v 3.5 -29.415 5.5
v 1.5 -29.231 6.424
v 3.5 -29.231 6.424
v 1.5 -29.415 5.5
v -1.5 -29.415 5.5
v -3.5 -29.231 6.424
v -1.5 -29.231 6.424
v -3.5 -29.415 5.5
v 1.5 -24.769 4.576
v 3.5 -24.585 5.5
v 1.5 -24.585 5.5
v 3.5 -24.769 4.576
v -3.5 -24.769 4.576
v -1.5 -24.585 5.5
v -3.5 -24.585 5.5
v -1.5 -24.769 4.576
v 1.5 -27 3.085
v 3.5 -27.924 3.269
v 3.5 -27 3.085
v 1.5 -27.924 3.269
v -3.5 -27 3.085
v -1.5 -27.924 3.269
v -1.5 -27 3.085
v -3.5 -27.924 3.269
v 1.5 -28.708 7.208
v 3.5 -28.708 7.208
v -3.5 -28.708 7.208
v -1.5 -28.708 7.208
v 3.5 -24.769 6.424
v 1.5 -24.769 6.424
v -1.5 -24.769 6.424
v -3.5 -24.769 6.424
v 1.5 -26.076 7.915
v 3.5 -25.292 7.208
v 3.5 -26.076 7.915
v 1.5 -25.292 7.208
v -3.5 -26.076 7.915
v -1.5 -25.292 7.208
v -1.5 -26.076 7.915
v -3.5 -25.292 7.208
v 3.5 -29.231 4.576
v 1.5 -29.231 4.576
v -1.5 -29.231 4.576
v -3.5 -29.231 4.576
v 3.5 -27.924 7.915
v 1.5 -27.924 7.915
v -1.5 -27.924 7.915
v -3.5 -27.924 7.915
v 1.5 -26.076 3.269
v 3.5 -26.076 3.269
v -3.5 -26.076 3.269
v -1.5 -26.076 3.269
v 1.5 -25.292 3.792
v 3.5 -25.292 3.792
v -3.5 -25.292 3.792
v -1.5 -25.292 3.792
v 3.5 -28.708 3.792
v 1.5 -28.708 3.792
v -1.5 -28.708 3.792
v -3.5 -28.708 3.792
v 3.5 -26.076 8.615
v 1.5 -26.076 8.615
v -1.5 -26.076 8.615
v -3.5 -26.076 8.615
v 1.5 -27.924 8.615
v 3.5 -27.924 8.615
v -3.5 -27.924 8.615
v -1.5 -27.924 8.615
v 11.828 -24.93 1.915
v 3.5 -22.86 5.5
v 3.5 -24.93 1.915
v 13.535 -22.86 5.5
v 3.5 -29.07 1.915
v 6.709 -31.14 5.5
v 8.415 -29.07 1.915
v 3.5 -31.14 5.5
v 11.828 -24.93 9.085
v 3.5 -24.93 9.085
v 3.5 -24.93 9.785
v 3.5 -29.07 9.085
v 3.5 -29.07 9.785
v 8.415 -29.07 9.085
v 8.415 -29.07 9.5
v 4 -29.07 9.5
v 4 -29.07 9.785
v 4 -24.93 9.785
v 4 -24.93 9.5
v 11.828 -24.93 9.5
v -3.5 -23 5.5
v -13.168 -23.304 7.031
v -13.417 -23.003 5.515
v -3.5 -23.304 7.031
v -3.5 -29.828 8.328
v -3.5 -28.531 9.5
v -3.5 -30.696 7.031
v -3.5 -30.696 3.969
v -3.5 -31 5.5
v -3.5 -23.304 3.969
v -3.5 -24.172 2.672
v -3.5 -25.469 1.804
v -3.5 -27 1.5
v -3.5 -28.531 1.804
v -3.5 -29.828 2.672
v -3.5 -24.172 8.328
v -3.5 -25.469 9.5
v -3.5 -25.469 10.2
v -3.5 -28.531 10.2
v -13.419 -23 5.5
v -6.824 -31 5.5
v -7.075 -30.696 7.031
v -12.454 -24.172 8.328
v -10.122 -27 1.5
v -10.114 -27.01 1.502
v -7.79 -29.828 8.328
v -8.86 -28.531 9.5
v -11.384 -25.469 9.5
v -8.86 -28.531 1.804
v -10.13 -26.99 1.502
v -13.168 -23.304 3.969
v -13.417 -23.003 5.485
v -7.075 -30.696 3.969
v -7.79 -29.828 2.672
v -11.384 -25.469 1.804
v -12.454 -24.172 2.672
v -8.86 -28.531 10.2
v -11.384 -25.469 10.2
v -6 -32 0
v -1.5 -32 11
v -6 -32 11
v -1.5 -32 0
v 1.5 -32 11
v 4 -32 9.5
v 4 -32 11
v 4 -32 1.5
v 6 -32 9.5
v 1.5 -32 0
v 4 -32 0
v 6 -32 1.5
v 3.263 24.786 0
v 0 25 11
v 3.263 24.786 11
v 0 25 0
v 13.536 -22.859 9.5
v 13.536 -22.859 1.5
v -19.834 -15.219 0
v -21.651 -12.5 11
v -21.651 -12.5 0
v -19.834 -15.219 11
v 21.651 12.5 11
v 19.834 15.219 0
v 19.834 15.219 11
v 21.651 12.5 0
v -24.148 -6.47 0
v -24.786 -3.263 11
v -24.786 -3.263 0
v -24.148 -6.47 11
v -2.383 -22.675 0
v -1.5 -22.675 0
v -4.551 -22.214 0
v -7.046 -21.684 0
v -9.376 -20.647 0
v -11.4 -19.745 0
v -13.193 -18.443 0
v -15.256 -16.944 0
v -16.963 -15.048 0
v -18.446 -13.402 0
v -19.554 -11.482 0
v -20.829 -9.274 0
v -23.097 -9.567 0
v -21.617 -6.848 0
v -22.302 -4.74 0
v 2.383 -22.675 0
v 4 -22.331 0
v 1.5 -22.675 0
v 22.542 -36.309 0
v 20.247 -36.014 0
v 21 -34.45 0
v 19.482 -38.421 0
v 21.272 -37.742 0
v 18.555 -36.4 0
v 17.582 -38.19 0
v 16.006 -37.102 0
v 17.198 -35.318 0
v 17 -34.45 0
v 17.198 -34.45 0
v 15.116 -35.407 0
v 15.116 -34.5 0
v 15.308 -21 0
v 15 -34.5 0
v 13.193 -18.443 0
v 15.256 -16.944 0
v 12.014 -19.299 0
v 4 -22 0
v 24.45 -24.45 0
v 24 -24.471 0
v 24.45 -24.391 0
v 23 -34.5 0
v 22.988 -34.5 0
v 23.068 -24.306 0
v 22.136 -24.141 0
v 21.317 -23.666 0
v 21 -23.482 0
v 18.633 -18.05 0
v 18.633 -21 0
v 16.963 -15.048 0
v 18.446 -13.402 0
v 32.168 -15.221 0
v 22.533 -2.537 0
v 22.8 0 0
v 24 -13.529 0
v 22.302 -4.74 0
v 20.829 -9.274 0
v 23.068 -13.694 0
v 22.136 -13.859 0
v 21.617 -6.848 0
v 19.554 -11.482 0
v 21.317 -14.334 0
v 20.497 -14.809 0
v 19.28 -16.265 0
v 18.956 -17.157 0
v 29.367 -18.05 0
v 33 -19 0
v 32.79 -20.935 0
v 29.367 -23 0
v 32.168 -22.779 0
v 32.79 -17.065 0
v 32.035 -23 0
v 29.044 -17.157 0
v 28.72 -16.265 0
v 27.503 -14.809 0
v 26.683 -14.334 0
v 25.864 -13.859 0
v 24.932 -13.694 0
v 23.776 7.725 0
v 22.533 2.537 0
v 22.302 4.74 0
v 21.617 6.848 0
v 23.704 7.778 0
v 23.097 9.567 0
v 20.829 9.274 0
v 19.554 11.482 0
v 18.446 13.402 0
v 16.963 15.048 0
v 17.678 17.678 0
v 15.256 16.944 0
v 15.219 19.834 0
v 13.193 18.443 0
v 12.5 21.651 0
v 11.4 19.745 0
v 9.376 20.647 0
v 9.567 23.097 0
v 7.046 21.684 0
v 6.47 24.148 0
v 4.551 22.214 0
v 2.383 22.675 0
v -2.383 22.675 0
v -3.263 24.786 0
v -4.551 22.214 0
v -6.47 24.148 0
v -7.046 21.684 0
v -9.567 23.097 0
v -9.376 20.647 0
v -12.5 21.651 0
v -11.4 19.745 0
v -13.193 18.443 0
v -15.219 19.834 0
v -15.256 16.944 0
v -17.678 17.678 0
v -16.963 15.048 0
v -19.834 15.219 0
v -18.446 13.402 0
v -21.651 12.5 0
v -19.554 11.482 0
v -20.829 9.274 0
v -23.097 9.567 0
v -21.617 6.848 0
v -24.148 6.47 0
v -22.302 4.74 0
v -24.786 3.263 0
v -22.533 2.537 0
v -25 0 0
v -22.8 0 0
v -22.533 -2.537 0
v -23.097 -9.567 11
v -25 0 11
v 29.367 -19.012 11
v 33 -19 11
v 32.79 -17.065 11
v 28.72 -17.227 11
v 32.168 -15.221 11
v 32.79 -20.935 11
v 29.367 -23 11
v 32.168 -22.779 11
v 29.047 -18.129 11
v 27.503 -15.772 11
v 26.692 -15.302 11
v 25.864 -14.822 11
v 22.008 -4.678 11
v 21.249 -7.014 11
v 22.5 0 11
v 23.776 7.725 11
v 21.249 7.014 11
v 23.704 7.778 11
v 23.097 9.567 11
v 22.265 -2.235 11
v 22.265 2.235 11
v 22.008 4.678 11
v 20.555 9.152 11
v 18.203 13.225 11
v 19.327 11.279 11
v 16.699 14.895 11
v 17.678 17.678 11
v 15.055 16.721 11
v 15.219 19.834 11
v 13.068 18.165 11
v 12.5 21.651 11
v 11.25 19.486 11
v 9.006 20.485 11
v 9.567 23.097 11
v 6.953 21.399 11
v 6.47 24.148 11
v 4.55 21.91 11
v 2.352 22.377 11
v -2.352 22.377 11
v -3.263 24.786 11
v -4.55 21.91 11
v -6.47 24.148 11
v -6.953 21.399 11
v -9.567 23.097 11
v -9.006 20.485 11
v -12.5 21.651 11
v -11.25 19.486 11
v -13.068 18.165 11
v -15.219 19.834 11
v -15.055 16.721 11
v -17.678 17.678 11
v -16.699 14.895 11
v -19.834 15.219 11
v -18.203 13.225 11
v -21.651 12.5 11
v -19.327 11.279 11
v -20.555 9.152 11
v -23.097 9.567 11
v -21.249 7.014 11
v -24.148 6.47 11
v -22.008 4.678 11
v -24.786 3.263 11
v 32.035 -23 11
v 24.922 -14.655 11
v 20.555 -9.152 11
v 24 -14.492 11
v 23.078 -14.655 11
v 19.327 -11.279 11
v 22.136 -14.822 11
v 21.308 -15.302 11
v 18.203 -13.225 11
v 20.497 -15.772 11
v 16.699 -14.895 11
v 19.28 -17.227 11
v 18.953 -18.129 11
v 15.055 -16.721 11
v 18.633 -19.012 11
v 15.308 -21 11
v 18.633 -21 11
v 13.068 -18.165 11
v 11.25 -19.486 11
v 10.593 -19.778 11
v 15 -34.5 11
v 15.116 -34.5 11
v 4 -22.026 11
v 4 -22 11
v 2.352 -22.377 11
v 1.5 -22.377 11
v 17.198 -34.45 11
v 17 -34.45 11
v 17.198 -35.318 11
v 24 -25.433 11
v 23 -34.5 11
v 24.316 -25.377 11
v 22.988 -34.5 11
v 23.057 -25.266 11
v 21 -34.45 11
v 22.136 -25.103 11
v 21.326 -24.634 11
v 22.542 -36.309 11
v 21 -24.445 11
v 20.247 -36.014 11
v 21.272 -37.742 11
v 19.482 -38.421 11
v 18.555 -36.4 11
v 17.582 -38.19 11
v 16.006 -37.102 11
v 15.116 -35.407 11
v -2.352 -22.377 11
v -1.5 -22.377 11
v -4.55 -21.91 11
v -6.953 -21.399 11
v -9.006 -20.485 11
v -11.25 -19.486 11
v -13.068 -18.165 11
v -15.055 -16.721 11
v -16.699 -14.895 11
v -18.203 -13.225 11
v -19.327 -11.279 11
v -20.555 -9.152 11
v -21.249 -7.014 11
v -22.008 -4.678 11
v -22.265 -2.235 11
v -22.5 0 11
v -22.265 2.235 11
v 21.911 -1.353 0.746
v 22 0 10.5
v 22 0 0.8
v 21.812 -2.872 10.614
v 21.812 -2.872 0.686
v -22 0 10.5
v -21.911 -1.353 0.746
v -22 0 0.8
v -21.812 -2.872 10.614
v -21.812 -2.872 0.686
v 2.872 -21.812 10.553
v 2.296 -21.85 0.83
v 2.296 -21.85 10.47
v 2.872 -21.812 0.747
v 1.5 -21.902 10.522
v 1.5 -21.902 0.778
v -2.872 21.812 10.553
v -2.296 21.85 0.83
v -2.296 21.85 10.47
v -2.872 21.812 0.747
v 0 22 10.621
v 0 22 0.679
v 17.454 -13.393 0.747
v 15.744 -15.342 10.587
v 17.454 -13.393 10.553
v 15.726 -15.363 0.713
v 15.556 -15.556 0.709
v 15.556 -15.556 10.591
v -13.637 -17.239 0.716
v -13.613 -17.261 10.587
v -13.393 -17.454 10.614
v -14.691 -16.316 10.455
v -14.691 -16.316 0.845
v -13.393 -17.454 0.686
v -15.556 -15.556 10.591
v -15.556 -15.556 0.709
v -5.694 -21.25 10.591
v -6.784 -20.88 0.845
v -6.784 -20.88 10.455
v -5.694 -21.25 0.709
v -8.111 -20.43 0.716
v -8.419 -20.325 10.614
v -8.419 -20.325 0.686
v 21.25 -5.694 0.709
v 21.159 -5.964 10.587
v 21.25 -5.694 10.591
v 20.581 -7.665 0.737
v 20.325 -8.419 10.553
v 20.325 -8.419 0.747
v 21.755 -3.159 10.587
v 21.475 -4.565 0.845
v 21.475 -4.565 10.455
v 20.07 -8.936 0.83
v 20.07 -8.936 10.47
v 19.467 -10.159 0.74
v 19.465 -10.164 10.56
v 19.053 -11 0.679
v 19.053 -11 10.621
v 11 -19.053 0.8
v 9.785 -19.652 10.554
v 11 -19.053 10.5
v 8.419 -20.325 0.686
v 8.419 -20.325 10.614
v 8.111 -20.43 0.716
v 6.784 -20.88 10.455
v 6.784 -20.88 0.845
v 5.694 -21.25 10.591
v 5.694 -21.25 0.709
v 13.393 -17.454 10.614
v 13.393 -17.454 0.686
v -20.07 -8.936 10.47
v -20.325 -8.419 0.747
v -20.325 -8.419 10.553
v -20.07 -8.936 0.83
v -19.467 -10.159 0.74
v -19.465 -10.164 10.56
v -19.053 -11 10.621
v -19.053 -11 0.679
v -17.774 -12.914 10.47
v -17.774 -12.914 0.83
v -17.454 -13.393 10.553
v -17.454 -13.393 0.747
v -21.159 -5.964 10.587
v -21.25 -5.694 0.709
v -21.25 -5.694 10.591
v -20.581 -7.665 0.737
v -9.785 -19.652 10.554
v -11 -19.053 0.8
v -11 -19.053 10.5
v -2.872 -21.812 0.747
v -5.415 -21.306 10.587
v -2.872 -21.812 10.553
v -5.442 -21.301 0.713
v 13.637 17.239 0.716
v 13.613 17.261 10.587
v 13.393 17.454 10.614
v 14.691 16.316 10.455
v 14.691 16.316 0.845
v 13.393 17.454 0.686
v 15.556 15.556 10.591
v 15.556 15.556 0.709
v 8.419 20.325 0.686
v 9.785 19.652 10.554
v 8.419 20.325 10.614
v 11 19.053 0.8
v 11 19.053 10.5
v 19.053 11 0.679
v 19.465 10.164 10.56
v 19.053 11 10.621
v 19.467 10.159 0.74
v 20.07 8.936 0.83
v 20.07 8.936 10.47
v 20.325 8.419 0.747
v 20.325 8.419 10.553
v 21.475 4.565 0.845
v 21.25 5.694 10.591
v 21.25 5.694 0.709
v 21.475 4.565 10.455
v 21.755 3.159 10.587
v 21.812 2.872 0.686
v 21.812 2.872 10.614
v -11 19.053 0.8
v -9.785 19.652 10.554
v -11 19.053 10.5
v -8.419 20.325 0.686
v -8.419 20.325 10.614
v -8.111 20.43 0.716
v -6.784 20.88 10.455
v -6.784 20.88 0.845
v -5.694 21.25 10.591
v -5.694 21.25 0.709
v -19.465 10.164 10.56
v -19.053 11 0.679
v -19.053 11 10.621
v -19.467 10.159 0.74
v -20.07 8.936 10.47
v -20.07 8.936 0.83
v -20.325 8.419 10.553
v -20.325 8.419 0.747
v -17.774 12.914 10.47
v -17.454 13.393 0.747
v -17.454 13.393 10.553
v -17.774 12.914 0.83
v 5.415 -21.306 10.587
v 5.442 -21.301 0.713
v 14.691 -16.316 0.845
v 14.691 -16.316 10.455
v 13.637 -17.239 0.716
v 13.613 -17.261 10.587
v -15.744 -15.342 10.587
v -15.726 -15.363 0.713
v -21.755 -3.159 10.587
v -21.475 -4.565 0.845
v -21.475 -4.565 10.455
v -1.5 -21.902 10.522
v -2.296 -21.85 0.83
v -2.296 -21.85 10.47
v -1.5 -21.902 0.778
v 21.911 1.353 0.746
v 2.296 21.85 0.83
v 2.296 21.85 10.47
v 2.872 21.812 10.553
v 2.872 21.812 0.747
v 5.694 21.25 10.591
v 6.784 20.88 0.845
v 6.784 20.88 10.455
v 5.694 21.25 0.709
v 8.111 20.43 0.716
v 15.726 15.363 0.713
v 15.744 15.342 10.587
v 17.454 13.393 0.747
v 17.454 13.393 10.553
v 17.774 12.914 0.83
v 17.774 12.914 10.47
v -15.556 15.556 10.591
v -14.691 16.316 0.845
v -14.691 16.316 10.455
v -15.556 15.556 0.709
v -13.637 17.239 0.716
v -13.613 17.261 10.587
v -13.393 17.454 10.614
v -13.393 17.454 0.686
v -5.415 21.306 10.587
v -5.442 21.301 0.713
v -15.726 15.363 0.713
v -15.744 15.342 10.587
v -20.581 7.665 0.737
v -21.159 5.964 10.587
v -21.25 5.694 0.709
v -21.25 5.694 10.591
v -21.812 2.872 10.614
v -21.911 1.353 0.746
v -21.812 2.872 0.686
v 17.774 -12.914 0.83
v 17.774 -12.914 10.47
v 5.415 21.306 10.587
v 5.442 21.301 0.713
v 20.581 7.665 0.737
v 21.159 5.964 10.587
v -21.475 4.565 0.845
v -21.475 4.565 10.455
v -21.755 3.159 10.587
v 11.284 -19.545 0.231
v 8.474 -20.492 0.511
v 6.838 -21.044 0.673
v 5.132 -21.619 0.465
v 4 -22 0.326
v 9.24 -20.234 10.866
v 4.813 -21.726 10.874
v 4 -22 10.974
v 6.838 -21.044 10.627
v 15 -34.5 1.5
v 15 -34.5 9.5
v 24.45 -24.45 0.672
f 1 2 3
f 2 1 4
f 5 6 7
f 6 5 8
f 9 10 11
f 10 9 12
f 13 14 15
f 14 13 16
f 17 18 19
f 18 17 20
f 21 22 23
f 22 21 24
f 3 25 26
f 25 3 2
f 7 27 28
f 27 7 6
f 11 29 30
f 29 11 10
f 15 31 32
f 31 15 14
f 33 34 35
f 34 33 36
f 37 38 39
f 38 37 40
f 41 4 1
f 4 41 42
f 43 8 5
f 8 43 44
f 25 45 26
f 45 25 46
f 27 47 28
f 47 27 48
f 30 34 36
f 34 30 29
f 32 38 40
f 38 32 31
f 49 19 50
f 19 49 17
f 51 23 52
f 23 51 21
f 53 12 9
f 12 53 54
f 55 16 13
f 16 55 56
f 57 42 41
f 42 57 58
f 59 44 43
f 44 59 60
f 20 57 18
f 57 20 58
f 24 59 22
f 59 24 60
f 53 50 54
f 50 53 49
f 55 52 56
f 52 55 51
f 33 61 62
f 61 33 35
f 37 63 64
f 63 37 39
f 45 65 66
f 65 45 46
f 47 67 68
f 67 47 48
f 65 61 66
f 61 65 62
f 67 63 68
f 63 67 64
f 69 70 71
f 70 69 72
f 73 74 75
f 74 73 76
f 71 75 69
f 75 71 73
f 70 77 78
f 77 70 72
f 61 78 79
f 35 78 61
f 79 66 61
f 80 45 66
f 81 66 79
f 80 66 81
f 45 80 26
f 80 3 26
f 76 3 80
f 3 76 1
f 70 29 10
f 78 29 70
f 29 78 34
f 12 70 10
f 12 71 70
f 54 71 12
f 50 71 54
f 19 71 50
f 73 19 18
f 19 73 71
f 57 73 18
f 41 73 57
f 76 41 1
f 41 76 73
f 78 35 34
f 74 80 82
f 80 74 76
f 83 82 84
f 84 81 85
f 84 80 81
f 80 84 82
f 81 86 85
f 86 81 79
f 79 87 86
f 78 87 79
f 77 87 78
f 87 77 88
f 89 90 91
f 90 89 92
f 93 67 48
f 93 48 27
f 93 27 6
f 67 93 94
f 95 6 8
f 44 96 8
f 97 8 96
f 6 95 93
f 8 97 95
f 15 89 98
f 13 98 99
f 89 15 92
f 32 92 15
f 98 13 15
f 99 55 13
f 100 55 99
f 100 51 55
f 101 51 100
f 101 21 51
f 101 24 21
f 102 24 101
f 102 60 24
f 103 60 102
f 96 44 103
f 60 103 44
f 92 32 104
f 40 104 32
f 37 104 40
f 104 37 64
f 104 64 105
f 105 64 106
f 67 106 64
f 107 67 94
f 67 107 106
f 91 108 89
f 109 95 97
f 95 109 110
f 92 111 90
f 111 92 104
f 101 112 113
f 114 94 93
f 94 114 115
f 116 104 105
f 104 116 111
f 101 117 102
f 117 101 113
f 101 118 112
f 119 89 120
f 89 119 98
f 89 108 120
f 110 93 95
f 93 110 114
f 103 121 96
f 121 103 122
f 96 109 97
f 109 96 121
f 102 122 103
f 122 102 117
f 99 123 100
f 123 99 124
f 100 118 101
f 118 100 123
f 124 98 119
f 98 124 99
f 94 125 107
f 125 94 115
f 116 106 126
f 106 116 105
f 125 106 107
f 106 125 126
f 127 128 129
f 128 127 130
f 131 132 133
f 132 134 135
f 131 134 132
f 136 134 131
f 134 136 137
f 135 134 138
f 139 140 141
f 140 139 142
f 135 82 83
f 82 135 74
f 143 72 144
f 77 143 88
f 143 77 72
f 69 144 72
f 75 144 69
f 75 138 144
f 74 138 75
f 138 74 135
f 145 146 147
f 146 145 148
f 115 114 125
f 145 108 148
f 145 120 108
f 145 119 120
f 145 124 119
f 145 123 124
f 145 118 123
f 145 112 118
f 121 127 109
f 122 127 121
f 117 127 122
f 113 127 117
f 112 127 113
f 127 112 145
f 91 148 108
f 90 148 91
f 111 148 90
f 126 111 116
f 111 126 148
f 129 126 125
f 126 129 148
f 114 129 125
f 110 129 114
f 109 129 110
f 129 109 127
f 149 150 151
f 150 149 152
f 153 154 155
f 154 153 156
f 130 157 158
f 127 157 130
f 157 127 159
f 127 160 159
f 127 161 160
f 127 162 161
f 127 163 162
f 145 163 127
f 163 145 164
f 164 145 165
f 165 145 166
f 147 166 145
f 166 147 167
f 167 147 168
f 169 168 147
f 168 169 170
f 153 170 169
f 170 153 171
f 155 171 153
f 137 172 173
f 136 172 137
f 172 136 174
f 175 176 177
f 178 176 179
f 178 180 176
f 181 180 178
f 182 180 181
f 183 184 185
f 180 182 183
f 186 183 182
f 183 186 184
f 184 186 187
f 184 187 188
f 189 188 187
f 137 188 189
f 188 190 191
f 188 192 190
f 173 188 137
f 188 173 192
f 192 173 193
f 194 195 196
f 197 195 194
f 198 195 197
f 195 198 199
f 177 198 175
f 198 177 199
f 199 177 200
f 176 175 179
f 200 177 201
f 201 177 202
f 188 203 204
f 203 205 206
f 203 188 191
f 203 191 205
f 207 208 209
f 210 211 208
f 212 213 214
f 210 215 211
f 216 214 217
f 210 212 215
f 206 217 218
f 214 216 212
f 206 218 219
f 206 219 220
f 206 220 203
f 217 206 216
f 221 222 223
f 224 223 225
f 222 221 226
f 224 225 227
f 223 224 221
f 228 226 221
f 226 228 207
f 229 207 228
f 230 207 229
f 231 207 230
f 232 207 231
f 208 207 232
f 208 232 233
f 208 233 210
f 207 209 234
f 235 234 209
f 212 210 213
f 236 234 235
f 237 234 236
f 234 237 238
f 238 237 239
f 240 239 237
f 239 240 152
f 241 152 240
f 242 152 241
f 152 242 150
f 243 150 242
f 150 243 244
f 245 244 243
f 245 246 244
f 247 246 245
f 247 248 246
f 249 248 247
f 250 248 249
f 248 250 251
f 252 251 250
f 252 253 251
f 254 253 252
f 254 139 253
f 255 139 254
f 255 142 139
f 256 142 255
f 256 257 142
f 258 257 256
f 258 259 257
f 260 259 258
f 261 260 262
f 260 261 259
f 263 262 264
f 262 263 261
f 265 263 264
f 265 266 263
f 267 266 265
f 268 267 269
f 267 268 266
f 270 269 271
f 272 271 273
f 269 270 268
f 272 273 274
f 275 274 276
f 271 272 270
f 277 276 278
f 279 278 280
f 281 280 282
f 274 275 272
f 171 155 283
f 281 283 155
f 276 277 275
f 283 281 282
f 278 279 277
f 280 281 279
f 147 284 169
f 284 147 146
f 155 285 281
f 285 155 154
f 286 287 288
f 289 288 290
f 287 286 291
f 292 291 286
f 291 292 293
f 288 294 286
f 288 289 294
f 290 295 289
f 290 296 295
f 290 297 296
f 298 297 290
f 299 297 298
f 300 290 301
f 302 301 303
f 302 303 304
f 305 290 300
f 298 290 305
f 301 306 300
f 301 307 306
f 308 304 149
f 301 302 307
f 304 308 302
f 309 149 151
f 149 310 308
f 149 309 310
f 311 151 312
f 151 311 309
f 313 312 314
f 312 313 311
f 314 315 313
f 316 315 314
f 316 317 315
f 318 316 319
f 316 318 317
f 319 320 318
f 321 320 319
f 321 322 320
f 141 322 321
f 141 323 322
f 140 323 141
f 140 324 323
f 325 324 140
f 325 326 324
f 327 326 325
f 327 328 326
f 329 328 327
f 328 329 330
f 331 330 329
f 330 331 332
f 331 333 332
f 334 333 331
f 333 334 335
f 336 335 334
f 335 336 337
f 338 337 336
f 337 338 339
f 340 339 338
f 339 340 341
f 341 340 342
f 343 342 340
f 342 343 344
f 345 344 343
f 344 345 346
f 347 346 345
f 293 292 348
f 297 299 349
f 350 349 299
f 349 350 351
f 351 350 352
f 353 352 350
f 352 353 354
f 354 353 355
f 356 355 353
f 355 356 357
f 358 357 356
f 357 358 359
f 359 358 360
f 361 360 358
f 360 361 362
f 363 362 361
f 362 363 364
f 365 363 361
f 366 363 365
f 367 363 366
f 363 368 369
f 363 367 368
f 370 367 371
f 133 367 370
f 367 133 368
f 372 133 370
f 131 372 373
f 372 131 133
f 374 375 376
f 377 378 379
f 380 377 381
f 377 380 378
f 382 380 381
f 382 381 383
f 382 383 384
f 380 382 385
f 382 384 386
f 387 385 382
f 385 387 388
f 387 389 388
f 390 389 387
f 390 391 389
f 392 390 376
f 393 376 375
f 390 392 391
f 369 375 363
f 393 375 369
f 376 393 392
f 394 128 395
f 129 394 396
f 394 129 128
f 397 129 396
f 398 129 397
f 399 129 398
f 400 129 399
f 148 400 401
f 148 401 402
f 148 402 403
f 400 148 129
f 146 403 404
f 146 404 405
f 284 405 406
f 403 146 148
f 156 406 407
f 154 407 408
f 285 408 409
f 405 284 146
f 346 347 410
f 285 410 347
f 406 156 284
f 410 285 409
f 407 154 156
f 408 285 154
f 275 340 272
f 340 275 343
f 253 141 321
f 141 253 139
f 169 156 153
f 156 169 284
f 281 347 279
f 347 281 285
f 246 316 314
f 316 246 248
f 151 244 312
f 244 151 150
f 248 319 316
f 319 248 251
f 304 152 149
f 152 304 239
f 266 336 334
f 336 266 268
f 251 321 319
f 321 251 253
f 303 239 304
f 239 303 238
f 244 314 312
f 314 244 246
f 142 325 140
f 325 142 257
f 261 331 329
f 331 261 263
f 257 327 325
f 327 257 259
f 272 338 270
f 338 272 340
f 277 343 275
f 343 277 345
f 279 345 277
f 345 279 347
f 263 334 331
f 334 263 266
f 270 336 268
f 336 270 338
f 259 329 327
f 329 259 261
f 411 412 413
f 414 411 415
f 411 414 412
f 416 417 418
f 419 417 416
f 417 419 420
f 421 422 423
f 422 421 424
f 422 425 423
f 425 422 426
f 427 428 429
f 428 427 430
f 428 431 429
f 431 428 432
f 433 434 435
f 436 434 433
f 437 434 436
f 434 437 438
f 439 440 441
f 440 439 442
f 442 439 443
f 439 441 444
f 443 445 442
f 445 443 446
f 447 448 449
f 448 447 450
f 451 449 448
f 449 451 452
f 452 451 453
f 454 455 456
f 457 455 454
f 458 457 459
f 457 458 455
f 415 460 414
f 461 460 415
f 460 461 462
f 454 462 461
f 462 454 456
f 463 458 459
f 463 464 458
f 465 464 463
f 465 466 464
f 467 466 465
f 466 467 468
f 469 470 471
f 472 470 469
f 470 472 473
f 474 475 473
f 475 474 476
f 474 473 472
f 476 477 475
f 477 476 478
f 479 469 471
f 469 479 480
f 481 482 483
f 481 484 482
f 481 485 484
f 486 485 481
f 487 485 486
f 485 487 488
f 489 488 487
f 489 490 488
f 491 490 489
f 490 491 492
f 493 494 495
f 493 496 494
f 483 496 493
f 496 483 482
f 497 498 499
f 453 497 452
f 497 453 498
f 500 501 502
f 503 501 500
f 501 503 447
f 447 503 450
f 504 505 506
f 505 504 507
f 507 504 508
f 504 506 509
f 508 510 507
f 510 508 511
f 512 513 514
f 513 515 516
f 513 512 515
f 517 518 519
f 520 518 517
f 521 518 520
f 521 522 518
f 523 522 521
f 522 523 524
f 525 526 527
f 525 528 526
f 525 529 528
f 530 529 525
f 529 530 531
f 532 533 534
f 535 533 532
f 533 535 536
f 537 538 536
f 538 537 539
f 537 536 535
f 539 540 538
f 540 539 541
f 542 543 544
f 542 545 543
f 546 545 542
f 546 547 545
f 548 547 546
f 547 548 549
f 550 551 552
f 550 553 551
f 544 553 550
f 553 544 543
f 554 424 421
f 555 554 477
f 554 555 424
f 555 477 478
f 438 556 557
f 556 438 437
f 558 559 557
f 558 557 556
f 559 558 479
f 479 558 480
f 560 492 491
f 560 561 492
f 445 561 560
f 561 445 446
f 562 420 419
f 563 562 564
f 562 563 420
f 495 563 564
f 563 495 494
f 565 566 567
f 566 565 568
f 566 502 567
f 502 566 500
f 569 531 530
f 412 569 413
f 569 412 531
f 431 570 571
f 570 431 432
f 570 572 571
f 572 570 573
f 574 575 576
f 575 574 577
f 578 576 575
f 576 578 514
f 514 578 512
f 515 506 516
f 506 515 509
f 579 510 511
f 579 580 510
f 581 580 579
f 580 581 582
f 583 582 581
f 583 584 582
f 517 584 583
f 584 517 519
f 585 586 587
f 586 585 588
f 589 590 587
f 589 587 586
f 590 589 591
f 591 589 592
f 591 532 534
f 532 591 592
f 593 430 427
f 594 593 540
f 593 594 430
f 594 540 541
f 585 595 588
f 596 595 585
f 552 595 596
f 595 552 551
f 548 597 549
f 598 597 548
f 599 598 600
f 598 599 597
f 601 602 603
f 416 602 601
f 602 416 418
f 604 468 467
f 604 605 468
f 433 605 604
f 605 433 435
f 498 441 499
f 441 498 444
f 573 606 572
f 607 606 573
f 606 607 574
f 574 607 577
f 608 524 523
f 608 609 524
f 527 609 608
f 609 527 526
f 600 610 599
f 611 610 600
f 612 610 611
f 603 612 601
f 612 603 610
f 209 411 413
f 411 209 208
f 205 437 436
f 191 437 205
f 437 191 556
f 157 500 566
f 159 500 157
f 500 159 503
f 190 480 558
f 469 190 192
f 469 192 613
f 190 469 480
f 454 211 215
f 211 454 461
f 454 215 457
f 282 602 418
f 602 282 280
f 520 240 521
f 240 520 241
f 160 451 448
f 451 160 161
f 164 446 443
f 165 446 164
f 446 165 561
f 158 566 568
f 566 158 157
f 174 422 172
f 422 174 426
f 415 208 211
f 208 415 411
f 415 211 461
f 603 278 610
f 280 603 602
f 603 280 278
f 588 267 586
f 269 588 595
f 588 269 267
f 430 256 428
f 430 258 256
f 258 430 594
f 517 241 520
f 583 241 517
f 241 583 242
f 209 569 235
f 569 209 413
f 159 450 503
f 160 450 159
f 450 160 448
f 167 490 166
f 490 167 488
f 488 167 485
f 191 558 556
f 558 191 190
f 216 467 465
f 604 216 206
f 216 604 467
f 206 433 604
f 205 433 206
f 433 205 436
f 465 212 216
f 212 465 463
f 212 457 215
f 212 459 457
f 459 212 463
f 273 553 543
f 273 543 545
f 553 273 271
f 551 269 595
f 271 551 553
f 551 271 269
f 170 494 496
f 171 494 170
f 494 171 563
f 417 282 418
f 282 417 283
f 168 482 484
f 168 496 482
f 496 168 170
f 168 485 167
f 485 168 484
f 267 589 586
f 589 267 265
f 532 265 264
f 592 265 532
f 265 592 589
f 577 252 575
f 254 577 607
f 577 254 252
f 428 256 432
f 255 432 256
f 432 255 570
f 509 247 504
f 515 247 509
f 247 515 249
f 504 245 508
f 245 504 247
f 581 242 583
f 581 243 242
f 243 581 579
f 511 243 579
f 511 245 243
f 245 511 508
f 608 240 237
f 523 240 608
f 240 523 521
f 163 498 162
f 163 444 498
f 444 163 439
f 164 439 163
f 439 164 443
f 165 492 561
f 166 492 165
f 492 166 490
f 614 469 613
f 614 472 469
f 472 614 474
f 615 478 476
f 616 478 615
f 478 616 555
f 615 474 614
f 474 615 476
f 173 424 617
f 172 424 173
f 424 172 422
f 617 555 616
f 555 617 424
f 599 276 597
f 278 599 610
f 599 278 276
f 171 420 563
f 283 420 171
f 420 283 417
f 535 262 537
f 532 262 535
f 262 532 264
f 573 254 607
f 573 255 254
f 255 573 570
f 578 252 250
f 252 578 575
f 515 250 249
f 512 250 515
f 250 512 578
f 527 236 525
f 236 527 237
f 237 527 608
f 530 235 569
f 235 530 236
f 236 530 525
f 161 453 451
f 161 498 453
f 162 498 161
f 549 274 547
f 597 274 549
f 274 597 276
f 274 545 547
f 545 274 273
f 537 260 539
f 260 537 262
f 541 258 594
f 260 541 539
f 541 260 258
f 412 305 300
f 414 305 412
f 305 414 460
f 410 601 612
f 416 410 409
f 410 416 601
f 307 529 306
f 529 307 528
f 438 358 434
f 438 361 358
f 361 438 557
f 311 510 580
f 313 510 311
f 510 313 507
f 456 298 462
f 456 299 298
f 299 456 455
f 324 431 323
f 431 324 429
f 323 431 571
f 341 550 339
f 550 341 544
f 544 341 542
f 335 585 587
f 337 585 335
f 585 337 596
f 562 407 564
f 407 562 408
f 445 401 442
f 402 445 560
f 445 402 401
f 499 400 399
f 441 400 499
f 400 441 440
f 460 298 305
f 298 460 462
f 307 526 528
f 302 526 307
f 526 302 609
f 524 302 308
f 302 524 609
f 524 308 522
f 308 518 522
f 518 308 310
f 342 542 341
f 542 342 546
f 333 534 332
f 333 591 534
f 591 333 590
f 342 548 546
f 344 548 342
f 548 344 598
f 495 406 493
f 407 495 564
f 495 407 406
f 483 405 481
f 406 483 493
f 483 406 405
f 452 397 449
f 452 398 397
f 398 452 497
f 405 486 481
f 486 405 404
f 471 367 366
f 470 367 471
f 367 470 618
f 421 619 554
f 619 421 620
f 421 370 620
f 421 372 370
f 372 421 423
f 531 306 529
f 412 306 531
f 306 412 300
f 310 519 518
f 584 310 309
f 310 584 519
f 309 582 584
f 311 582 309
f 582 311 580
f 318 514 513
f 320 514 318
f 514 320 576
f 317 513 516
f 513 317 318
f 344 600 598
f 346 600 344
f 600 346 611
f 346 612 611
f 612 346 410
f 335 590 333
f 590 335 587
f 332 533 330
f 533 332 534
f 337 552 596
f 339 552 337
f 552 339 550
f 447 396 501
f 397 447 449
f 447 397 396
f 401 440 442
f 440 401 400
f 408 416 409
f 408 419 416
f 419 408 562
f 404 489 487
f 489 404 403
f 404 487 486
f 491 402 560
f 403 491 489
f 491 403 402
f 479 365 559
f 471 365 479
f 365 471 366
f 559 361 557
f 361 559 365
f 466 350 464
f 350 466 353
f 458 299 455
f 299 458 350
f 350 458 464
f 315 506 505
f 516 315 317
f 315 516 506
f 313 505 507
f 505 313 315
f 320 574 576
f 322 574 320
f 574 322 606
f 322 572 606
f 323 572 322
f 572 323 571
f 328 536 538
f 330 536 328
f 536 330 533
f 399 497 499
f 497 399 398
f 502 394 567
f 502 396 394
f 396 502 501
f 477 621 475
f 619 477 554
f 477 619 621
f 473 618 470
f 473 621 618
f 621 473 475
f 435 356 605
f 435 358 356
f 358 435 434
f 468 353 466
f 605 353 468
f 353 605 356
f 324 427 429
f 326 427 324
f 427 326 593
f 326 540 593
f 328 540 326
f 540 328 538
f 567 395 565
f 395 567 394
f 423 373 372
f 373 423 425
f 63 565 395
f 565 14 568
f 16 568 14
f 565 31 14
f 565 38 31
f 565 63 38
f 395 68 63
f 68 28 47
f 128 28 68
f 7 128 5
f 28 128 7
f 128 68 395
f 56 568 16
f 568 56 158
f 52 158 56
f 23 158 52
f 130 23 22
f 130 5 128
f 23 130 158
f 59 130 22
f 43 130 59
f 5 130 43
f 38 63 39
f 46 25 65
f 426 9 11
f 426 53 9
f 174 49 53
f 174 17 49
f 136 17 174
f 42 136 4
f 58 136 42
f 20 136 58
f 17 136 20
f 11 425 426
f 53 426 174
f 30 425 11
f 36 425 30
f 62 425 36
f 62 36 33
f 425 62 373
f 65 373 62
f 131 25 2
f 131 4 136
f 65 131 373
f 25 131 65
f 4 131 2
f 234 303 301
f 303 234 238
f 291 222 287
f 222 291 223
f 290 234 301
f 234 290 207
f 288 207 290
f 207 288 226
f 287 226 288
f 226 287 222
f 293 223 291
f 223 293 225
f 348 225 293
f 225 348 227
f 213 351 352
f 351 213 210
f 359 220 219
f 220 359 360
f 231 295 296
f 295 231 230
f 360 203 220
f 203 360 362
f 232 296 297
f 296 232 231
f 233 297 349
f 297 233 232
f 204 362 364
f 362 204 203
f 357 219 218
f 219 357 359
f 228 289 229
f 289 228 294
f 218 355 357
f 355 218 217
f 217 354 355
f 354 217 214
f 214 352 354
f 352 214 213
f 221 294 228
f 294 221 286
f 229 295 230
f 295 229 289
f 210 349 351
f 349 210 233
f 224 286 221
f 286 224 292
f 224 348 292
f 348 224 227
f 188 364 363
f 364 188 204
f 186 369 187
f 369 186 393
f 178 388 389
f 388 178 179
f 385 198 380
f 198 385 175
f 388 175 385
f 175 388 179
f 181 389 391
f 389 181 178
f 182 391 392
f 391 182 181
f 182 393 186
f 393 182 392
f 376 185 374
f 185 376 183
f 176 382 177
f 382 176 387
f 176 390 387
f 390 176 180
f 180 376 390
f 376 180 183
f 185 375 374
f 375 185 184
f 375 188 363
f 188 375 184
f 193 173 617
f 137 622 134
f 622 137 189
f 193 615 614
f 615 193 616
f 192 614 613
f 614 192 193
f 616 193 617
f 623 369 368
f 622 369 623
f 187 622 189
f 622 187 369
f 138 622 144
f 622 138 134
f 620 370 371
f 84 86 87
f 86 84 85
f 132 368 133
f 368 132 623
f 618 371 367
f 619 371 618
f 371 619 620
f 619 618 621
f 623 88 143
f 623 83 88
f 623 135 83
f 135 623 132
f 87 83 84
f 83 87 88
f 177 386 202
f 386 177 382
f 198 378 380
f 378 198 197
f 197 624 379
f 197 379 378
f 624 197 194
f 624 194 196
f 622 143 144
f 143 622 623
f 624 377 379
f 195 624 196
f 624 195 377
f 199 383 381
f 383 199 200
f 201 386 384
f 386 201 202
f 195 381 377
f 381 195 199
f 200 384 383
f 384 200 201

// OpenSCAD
// file: cylinder_clip.scad
use <../utilities.scad>;

module cylinder_clip(r=1,t=3,opening_angle=120,wing_length=2,wing_angle=45,flat_w=10,flat_t=3,h=10,$fn=$fn){
	union(){
		difference(){
			hull(){
				cylinder(r=r+t,$fn=$fn,h=h);
				translate([-flat_w/2,-r-flat_t,0]) cube([flat_w,0.1,h]);
			}
			cylinder(r=r,$fn=$fn,h=99999,center=true);
			cylinder(r1=r+2,r2=r,$fn=$fn,h=2,center=true);
			scale([tan(opening_angle/2),1,1]) rotate([0,0,45]) translate([0,0,-1]) cube([1,1,1]*9999);
		}
		reflect([1,0,0]) translate([sin(opening_angle/2),cos(opening_angle/2),0]*(r+t/2)) hull() repeat([sin(wing_angle),cos(wing_angle),0]*wing_length,2)
			cylinder(r=t/2,h=h,$fn=16);
			
	}
}

//cylinder_clip(r=3,t=2,flat_w=6);
union(){
	cylinder_clip(r=21,t=4.5,flat_t=10,opening_angle=100,$fn=64);
	translate([-5,-22-5-20,0]) cube([10,20,10]);
}
// file: ../standard_optomechanics/cylinder_clamp.scad
use <../utilities.scad>;
d=0.05;

//for 1 inch/25mm post clamp, an inner radius of 12.8 is good.
	
module cylinder_clamp(
	inner_r=12.8, //radius of the cylinder being clamped (ish!)
	clamp_h=11, //thicknedess of the clamp along the cylinder axis
	clamp_t=4, //thickness of the clamp radially
	flat_t=8, //how thick the bottom of the clamp is (often need to allow for the mounting bolt head here)
	flat_width=15, //width of the flat base
	mounting_bolt=4, //nominal size of mounting bolt (default is 4 for M4, 0 to disable)
	nut_trap=false,
	bevel_top=0.5, //size of 45 degree bevel on top surface
	bevel_bottom=0.8 //size of 45 degree bevel on bottom of hole
	){
	assign(
		post_r = inner_r, //poor initial choice of name!
		bolt_flat_w=10, //width of the region where the bolt is
		gap_w=3 //size of the gap that is squeezed by the bolt
	)
	difference(){
		hull(){
			cylinder(h=clamp_h,r=post_r+clamp_t,center=true,$fn=48);
			translate([0,-post_r-flat_t/2,0]) cube([flat_width,flat_t,clamp_h],center=true);
			translate([0,post_r+bolt_flat_w/2,0]) cube([12,bolt_flat_w,clamp_h],center=true);
		}
	
		cylinder(h=9999,r=post_r,center=true,$fn=48); //cylinder being clamped
		//bevels, top and bottom
		translate([0,0,-clamp_h/2]) cylinder(r1=post_r+3*bevel_bottom,r2=post_r-bevel_bottom,h=4*bevel_bottom,center=true);
		translate([0,0,clamp_h/2]) cylinder(r2=post_r+3*bevel_top,r1=post_r-bevel_top,h=4*bevel_top,center=true);
		//gap (squeezed by bolt)
		translate([0,999,0]) cube([gap_w,999*2,999],center=true); //gap
	
		//clamping bolt
		translate([gap_w/2+2,post_r+bolt_flat_w/2,0]) rotate([0,0,-90]) nut_y(4,h=999,shaft=true);
		translate([-gap_w/2-2,post_r+bolt_flat_w/2,0]) rotate([0,0,90]) cylinder_with_45deg_top(r=4,h=999,$fn=16); //counterbore for nut head
	
		if(mounting_bolt > 0){
			//mounting bolt
			translate([0,-post_r-4.5,0]) rotate([-90,0,0]){
				intersection(){
					rotate([90,0,0])
						if(nut_trap){
							nut_y(mounting_bolt,fudge=1.15,shaft=true,h=999);
						}else{
							screw_y(mounting_bolt,fudge=1.07,shaft=true,h=999);
						}
					cube([inner_r*2,inner_r*2,clamp_h*2],center=true);
				}
			}
		}
		//in the case of thick clamps with thin flats, this keeps the bottom flat
		translate([0,-inner_r-flat_t-999,0]) cube([9999,999*2,9999],center=true);
	}
}

module cylinder_clamp_v(
	inner_r=12.8, //radius of the cylinder being clamped (ish!)
	clamp_h=10, //width of the clamp along the cylinder (y) axis
	clamp_t=4, //thickness of the clamp radially
	flat_t=8, //how thick the bottom of the clamp is (often need to allow for the mounting bolt head here)
	flat_width=15, //width of the flat base
	mounting_bolt=4, //nominal size of mounting bolt (default is 4 for M4, 0 to disable)
	bevel=0.5 //put a 45 degree bevel on the edges of the hole
	){
	assign(
		post_r = inner_r, //poor initial choice of name!
		bolt_flat_w=11, //width of the region where the bolt is
		gap_w=2*inner_r*sin(45/2),//sin(acos(1-(9/2-4/2*1.22)/inner_r))*inner_r //size of the gap that is squeezed by the bolt
		bolt_z = inner_r+4/2*1.22+d //position of bolt (so bolt just clears the cylinder we're clamping
	)assign( //the second assign statement allows us to use gap_w
		bolt_span=gap_w+4+d//max(2*inner_r*sin(acos(1-(9/2-4/2*1.22)/inner_r)), gap_w+4)
	)
	difference(){
		hull(){
			rotate([90,0,0]) cylinder(h=clamp_h,r=inner_r+clamp_t,center=true,$fn=48);
			translate([0,0,-inner_r-flat_t/2]) cube([flat_width,clamp_h,flat_t],center=true);
			translate([0,0,bolt_z]) cube([gap_w+9,clamp_h,bolt_flat_w],center=true);
		}
	
		cylinder_with_45deg_top(h=9999,r=post_r,center=true,$fn=48); //cylinder being clamped
		reflect([0,1,0]) translate([0,clamp_h/2,0]) rotate([90,0,0]) cylinder(r1=post_r+3*bevel,r2=post_r-bevel,h=4*bevel,center=true); //bevel
		translate([0,0,999]) cube([gap_w,999,999*2],center=true); //gap
	
		//clamping bolt
		translate([bolt_span/2,0,bolt_z]) rotate([0,0,-90]) nut_y(4,h=999,shaft=true);
		translate([-bolt_span/2,0,bolt_z]) rotate([0,0,90]) cylinder_with_45deg_top(r=4,h=999,$fn=16); //counterbore for nut head
	
		if(mounting_bolt > 0){
			//mounting bolt
			translate([0,0,-post_r-4.5]){
				cylinder(r=mounting_bolt*1.1,h=post_r,$fn=16);
				cylinder(r=mounting_bolt/2*1.22,h=flat_t*2,center=true,$fn=16);
			}
		}
		translate([0,0,-inner_r-flat_t-999]) cube([9999,9999,999*2],center=true);
	}
}

translate([0,30,0]) cylinder_clamp_v(30.5/2, 10, flat_width=24, mounting_bolt=4, flat_t=8);

cylinder_clamp(30.5/2, flat_width=24, mounting_bolt=4, flat_t=8,nut_trap=true);
// main file
use <../standard_optomechanics/cylinder_clamp.scad>;
use <./cylinder_clip.scad>;
use <../utilities.scad>;

t = 3;
h = 11;
inner_r = 22;
rack_r = 10.5/2+0.2;

rack = [inner_r+2,-inner_r+3,0];

d=0.05;

module rack(){
	translate(rack) rotate([0,5,-90]) //rotate([0,2.5,-90])
				cylinder(r=rack_r,h=999*2,center=true);
}

//actual clamp
union(){
	translate([0,0,h/2]) mirror([0,1,0]) cylinder_clamp(inner_r=inner_r,clamp_h=h,flat_width=0,flat_t=t,mounting_bolt=0,clamp_t=t);

	difference(){
		union(){
			hull(){
				rotate(18) translate([inner_r+t/2,0,0]) cylinder(r=t/2,h=h);
				translate(rack) cylinder(r=5+4,h=h);
			}
		}
	
		cylinder(r=inner_r+t/2,h=999,center=true); //clearance for tube 

		//clearance for rack
		hull() repeat([0,-999,0],2) #rack();
		translate(rack + [0,-4-999,0]) cube([1,1,1]*999*2,center=true);
		translate(rack + [0,-2,-1]) mirror([1,0,0]) mirror([0,1,0]) cube([1,1,1]*999);
	}
}

roc=2;
flex_t=2;
clip = [3,rack_r-4,h];
pivot = rack + [-clip[0]-roc, -rack_r - 10,0];
module clip_strut(h){
    hull(){
        translate(pivot + [-roc-flex_t,-d,0]) cube([flex_t,d,h]);
        translate([rack[0]-clip[0]-rack_r-flex_t-0.5,rack[1],0]) cube([flex_t,d,h]);
    }
}

difference(){
    union(){
        translate(rack) hull(){ //locking bit
            translate([-clip[0],-rack_r,0]) cube([rack_r-2,rack_r-4,h]);
            translate([-clip[0],-rack_r-10-d,0]) cube([flex_t,d,h]);
        }
        translate(pivot) difference(){
            cylinder(r=4,h=h);
            cylinder(r=2,h=999,center=true);
            translate([-10,0,-10]) cube([1,1,1]*999);
        }
        clip_strut(h);
        repeat([0,0,h-1.5],2) hull(){
            clip_strut(1.5);
            translate([4,-inner_r-10,0]) cube([d,10,1.5]);
        }
    }
    rack();
}

/*
null()	difference(){
	//	hull(){
//			translate(rack - [
		cylinder(r=inner_r+1,h=999,center=true);
		translate([inner_r,inner_r,0]) repeat([999,0,0],2) rotate([-2.5,0,-90])
				translate([0,0,-999]) cylinder(r=5+0.2,h=999*2,center=true);
	}
	difference(){
		translate([4,0,-h/2]) cube([inner_r-4-1,inner_r+10,h]); //support for clip
		cylinder(r=inner_r+t/2,h=999,center=true); //clearance for tube 
		translate([0,0,-8/2]) cube([14,999,8+0.3]); //nut entry
		translate([0,inner_r+5,0]) rotate(-90) cylinder_with_45deg_top(r=2.5,h=20,$fn=16); //bolt clearance
	}
}
*/
